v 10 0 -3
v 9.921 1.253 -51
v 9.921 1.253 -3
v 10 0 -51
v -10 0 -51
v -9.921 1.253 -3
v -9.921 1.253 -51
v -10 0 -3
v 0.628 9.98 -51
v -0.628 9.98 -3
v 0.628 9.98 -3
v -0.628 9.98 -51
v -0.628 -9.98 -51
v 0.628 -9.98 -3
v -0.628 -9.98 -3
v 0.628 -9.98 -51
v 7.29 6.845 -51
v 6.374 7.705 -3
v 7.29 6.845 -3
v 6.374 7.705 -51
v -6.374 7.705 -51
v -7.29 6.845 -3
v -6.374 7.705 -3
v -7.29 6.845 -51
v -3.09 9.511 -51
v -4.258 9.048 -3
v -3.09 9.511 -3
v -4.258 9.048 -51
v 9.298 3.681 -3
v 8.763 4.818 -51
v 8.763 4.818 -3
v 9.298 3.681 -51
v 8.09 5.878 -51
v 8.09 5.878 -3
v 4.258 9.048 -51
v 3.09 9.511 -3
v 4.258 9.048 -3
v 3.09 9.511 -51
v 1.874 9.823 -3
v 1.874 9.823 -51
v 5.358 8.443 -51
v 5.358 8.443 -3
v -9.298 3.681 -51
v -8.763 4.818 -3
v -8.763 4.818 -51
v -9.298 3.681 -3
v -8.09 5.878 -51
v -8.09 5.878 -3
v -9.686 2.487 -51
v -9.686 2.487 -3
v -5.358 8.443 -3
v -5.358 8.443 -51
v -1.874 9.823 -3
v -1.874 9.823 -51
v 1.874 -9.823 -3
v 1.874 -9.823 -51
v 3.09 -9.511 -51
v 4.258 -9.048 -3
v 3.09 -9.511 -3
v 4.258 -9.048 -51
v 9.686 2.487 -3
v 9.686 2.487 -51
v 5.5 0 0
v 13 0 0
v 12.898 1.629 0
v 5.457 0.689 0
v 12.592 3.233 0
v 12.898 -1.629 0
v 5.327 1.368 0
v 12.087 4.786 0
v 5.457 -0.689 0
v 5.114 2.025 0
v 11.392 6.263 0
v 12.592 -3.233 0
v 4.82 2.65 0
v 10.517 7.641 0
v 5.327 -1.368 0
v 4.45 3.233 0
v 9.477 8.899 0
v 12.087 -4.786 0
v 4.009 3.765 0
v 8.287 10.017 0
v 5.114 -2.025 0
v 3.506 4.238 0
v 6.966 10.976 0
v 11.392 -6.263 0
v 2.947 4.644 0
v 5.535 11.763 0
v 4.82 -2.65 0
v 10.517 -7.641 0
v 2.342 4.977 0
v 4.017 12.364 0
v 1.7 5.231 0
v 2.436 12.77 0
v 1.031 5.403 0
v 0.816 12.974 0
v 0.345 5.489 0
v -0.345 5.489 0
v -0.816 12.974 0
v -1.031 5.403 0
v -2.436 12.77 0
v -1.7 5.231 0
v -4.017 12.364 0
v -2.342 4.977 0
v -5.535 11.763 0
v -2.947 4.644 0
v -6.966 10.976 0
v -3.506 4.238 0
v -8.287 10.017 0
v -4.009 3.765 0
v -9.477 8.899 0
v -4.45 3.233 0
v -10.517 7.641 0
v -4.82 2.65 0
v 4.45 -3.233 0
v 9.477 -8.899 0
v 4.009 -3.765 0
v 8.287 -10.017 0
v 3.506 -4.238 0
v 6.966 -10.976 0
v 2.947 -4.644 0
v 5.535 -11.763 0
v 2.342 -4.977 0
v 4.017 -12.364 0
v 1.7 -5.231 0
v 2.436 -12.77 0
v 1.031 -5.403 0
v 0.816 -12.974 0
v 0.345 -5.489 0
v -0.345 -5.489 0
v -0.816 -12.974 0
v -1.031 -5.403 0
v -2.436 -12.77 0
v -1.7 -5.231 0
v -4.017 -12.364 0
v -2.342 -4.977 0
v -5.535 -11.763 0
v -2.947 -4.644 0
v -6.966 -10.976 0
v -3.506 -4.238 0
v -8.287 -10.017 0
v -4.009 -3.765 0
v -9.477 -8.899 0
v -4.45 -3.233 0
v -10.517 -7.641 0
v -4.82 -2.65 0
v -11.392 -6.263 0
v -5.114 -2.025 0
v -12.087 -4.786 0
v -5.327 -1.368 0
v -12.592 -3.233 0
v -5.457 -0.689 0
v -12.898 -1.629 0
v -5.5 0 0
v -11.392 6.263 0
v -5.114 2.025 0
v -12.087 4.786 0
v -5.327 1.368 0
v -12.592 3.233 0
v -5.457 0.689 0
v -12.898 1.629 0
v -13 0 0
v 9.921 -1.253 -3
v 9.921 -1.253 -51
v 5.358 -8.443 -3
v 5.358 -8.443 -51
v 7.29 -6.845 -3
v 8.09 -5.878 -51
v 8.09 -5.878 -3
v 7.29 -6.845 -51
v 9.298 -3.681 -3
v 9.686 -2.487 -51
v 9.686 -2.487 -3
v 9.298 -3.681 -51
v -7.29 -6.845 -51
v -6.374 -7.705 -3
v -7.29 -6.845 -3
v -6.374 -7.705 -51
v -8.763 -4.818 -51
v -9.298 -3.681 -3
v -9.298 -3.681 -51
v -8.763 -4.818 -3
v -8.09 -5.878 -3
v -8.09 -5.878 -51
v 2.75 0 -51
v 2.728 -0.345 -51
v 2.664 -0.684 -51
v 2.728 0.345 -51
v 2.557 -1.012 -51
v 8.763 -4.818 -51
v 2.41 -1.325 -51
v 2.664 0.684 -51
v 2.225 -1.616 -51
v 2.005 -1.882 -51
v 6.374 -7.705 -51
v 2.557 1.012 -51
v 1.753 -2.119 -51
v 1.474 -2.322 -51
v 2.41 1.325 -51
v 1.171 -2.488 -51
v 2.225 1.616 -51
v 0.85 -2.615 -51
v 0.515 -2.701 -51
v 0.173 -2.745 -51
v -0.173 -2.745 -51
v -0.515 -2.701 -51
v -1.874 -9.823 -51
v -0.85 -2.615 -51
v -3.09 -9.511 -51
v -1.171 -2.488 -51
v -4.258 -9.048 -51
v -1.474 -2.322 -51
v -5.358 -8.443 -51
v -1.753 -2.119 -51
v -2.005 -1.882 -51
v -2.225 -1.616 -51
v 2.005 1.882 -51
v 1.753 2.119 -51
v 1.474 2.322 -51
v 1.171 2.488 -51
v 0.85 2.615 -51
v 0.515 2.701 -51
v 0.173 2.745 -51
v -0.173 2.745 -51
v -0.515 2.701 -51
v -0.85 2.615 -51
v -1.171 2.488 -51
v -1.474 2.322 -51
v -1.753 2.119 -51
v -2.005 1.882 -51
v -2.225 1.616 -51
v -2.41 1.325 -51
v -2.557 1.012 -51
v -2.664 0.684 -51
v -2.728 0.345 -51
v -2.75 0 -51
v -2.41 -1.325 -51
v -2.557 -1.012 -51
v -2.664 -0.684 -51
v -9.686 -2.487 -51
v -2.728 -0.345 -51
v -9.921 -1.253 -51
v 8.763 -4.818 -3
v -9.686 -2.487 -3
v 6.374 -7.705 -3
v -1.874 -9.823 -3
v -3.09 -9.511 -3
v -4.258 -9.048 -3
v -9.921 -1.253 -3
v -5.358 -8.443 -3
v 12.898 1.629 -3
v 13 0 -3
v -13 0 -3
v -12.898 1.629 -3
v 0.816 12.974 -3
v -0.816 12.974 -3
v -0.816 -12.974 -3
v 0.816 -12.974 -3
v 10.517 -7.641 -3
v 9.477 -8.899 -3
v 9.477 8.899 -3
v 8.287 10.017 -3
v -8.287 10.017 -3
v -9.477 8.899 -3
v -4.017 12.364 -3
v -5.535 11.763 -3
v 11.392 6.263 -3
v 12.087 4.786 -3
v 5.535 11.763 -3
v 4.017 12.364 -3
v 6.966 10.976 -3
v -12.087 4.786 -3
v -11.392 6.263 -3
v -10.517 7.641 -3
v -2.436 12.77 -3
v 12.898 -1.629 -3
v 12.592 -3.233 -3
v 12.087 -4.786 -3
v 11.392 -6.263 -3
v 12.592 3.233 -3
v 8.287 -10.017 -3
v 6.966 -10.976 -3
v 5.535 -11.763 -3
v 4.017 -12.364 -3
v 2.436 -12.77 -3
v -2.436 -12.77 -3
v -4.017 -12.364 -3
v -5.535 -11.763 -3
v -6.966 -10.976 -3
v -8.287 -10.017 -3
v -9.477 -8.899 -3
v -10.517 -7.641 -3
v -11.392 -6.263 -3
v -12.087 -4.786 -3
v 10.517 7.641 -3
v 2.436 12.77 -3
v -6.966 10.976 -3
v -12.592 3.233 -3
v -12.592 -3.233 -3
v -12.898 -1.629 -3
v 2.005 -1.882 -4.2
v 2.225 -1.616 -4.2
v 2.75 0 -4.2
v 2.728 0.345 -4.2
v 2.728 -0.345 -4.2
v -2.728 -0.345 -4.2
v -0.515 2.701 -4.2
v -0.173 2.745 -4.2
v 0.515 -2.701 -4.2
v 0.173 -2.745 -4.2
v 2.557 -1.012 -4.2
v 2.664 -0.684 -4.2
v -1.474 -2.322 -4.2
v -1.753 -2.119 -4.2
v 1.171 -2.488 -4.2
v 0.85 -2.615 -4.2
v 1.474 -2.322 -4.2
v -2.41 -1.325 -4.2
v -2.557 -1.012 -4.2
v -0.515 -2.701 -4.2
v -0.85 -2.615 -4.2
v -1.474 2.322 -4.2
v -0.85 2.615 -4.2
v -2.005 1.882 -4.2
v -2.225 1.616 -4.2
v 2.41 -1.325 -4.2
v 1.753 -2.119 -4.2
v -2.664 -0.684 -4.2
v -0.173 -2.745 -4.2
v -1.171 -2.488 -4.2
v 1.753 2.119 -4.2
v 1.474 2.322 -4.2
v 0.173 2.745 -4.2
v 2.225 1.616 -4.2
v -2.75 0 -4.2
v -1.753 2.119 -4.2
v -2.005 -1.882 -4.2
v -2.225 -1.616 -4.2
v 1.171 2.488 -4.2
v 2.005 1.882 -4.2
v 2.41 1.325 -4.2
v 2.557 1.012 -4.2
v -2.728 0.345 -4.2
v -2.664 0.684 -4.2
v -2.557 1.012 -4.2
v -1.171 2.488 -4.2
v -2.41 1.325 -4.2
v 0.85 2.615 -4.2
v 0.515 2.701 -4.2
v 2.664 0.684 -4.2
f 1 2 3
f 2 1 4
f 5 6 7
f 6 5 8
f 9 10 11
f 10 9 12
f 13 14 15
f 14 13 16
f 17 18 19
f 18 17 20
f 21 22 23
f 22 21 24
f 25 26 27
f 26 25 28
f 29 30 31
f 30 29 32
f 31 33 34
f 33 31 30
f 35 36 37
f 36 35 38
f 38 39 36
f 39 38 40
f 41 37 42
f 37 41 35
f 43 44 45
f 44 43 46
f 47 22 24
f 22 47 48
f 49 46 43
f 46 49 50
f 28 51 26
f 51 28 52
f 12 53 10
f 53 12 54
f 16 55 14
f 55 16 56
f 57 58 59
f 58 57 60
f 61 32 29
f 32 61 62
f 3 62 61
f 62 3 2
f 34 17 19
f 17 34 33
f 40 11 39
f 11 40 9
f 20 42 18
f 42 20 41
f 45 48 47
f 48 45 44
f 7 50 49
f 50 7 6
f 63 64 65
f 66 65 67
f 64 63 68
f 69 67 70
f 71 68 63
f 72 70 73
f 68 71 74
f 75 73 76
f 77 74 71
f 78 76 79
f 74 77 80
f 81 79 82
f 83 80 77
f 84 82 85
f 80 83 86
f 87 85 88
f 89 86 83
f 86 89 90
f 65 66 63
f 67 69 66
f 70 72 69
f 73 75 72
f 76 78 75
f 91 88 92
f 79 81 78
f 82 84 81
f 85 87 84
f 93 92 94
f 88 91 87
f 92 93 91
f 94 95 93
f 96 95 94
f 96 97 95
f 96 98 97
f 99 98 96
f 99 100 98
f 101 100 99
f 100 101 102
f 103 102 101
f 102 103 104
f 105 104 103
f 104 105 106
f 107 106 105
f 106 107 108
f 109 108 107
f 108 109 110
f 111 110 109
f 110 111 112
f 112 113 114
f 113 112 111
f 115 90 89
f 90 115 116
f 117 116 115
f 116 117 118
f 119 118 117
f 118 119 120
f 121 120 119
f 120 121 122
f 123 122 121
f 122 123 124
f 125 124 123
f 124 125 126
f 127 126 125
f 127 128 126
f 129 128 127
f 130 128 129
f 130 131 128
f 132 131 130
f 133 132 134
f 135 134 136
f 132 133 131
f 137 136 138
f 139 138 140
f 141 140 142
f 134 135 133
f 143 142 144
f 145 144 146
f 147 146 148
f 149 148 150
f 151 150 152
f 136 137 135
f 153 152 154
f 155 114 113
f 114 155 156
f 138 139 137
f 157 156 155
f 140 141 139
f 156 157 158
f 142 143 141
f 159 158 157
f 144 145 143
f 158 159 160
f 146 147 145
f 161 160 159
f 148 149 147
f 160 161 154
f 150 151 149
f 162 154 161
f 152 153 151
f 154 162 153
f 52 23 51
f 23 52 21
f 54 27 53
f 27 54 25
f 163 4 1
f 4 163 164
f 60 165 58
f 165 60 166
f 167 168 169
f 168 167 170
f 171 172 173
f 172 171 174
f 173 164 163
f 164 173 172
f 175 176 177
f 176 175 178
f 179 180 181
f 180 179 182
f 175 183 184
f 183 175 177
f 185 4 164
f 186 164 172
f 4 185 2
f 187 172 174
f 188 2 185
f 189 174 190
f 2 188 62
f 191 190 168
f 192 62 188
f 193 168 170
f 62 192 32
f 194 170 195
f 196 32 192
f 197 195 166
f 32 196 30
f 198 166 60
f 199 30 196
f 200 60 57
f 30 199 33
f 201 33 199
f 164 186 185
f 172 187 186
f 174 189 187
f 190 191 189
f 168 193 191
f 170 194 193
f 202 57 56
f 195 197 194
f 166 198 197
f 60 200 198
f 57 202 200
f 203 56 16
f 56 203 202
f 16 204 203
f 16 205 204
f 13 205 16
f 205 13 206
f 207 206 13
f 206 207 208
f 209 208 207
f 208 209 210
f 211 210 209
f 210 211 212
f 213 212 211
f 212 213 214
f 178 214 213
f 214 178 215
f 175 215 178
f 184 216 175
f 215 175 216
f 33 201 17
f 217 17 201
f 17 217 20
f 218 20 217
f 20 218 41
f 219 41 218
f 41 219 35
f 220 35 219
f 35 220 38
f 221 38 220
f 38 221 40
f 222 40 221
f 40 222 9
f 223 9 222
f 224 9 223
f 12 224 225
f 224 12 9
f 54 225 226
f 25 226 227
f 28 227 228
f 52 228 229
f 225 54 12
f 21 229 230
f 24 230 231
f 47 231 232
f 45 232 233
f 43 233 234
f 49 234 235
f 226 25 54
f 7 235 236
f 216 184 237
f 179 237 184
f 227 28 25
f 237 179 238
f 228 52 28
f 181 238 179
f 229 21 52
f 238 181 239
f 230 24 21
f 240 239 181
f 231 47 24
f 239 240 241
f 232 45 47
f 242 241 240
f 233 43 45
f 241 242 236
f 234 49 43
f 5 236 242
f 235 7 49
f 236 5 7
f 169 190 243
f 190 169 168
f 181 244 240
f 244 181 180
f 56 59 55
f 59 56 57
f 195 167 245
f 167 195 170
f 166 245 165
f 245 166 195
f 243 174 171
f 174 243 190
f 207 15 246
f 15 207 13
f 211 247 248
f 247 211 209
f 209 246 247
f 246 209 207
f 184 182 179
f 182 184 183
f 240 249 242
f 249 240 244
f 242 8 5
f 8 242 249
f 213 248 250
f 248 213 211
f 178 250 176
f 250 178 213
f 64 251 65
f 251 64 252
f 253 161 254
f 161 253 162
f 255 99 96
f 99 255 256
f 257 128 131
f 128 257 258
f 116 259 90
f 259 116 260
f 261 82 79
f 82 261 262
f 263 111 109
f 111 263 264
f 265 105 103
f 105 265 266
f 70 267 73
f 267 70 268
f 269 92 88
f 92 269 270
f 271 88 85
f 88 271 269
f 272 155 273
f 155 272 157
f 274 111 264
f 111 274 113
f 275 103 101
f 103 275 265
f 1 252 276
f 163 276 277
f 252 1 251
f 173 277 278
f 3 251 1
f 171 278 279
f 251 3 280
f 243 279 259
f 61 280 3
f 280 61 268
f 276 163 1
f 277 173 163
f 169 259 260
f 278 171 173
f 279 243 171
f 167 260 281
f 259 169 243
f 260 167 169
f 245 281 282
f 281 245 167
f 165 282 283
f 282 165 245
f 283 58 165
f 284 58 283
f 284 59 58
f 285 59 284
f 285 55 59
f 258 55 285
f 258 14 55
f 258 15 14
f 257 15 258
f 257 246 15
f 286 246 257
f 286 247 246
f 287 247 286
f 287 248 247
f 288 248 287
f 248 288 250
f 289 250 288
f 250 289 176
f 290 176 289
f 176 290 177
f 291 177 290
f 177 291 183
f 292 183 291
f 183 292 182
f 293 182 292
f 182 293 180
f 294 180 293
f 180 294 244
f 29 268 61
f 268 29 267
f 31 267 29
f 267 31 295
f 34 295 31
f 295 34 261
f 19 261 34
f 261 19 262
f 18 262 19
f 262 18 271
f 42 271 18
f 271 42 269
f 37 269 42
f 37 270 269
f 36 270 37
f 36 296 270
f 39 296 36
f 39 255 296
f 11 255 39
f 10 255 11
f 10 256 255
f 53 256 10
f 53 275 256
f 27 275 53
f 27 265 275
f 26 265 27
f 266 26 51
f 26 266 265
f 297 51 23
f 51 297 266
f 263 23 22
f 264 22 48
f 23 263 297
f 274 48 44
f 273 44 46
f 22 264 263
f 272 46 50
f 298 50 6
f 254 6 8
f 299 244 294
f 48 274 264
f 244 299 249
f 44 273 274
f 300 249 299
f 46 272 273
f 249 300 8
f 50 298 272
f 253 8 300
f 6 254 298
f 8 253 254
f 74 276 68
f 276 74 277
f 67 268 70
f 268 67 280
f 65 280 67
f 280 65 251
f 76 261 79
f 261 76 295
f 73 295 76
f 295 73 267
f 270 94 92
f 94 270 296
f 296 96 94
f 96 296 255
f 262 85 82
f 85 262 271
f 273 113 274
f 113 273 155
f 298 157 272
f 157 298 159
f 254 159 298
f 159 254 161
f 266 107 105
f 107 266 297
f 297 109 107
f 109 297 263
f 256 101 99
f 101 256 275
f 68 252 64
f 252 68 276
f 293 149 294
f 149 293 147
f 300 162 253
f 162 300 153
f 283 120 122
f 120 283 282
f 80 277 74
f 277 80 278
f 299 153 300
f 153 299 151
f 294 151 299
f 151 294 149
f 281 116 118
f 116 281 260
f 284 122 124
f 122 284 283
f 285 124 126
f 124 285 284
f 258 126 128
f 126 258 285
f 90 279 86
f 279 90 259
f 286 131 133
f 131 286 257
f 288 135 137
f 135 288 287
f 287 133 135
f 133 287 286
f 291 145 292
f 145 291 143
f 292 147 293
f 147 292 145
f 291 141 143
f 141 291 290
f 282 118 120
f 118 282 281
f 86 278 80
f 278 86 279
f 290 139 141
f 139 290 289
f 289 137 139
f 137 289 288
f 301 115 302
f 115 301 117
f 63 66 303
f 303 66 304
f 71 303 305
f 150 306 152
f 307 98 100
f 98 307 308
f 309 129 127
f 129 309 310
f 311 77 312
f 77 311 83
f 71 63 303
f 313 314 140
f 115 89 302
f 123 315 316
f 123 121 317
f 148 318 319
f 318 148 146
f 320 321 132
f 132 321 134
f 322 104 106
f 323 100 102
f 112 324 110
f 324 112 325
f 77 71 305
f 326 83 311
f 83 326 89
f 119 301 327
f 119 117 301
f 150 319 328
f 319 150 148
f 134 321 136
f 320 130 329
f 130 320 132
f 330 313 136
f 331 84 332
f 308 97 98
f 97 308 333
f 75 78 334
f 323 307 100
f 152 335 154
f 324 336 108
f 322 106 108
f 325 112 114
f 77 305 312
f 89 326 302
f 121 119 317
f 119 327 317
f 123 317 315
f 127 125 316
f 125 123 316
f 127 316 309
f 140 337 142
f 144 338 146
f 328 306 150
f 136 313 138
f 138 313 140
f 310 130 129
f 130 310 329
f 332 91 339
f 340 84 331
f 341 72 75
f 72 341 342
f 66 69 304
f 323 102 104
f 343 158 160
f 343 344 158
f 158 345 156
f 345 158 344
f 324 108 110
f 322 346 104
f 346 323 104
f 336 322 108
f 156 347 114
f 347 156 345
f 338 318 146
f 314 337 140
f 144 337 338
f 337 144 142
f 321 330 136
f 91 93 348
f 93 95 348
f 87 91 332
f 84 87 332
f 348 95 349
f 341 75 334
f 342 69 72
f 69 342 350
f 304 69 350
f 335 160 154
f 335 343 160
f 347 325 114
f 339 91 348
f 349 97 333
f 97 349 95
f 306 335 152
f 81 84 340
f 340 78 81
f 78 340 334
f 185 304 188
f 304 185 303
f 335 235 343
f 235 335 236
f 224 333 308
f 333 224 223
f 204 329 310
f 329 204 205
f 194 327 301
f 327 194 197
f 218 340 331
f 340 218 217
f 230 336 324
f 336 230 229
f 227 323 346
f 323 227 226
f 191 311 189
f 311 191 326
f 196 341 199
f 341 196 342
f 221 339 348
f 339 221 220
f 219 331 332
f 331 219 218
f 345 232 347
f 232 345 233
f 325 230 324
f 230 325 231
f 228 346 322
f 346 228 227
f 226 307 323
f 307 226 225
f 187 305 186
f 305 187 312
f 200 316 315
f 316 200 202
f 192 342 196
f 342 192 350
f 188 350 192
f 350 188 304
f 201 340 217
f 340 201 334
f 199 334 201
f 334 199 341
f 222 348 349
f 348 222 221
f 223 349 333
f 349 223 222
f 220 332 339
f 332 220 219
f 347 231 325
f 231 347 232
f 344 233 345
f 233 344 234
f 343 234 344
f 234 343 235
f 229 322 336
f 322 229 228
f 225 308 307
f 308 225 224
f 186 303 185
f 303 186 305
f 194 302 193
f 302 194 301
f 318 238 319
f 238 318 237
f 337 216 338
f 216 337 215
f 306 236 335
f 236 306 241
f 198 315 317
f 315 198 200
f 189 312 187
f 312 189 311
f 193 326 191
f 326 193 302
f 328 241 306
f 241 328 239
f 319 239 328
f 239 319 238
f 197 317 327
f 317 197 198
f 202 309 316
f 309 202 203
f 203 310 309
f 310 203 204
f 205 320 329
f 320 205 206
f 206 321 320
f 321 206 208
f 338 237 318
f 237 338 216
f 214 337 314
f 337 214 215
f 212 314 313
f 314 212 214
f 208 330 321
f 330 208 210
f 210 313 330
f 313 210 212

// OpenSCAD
$fn = 50;


difference() {
	union() {
		translate(v = [0, 0, -51.0000000000]) {
			cylinder(h = 51, r = 10.0000000000);
		}
		translate(v = [0, 0, -3.0000000000]) {
			cylinder(h = 3, r = 13.0000000000);
		}
	}
	union() {
		translate(v = [0, 0, 0]) {
			rotate(a = [0, 0, 0]) {
				difference() {
					union() {
						#translate(v = [0, 0, -51.0000000000]) {
							cylinder(h = 51, r = 2.2500000000);
						}
						#translate(v = [0, 0, -4.2000000000]) {
							cylinder(h = 4.2000000000, r1 = 2.7500000000, r2 = 5.5000000000);
						}
						#translate(v = [0, 0, -51.0000000000]) {
							cylinder(h = 51, r = 2.7500000000);
						}
						#translate(v = [0, 0, -51.0000000000]) {
							cylinder(h = 51, r = 2.2500000000);
						}
					}
					union();
				}
			}
		}
	}
}
